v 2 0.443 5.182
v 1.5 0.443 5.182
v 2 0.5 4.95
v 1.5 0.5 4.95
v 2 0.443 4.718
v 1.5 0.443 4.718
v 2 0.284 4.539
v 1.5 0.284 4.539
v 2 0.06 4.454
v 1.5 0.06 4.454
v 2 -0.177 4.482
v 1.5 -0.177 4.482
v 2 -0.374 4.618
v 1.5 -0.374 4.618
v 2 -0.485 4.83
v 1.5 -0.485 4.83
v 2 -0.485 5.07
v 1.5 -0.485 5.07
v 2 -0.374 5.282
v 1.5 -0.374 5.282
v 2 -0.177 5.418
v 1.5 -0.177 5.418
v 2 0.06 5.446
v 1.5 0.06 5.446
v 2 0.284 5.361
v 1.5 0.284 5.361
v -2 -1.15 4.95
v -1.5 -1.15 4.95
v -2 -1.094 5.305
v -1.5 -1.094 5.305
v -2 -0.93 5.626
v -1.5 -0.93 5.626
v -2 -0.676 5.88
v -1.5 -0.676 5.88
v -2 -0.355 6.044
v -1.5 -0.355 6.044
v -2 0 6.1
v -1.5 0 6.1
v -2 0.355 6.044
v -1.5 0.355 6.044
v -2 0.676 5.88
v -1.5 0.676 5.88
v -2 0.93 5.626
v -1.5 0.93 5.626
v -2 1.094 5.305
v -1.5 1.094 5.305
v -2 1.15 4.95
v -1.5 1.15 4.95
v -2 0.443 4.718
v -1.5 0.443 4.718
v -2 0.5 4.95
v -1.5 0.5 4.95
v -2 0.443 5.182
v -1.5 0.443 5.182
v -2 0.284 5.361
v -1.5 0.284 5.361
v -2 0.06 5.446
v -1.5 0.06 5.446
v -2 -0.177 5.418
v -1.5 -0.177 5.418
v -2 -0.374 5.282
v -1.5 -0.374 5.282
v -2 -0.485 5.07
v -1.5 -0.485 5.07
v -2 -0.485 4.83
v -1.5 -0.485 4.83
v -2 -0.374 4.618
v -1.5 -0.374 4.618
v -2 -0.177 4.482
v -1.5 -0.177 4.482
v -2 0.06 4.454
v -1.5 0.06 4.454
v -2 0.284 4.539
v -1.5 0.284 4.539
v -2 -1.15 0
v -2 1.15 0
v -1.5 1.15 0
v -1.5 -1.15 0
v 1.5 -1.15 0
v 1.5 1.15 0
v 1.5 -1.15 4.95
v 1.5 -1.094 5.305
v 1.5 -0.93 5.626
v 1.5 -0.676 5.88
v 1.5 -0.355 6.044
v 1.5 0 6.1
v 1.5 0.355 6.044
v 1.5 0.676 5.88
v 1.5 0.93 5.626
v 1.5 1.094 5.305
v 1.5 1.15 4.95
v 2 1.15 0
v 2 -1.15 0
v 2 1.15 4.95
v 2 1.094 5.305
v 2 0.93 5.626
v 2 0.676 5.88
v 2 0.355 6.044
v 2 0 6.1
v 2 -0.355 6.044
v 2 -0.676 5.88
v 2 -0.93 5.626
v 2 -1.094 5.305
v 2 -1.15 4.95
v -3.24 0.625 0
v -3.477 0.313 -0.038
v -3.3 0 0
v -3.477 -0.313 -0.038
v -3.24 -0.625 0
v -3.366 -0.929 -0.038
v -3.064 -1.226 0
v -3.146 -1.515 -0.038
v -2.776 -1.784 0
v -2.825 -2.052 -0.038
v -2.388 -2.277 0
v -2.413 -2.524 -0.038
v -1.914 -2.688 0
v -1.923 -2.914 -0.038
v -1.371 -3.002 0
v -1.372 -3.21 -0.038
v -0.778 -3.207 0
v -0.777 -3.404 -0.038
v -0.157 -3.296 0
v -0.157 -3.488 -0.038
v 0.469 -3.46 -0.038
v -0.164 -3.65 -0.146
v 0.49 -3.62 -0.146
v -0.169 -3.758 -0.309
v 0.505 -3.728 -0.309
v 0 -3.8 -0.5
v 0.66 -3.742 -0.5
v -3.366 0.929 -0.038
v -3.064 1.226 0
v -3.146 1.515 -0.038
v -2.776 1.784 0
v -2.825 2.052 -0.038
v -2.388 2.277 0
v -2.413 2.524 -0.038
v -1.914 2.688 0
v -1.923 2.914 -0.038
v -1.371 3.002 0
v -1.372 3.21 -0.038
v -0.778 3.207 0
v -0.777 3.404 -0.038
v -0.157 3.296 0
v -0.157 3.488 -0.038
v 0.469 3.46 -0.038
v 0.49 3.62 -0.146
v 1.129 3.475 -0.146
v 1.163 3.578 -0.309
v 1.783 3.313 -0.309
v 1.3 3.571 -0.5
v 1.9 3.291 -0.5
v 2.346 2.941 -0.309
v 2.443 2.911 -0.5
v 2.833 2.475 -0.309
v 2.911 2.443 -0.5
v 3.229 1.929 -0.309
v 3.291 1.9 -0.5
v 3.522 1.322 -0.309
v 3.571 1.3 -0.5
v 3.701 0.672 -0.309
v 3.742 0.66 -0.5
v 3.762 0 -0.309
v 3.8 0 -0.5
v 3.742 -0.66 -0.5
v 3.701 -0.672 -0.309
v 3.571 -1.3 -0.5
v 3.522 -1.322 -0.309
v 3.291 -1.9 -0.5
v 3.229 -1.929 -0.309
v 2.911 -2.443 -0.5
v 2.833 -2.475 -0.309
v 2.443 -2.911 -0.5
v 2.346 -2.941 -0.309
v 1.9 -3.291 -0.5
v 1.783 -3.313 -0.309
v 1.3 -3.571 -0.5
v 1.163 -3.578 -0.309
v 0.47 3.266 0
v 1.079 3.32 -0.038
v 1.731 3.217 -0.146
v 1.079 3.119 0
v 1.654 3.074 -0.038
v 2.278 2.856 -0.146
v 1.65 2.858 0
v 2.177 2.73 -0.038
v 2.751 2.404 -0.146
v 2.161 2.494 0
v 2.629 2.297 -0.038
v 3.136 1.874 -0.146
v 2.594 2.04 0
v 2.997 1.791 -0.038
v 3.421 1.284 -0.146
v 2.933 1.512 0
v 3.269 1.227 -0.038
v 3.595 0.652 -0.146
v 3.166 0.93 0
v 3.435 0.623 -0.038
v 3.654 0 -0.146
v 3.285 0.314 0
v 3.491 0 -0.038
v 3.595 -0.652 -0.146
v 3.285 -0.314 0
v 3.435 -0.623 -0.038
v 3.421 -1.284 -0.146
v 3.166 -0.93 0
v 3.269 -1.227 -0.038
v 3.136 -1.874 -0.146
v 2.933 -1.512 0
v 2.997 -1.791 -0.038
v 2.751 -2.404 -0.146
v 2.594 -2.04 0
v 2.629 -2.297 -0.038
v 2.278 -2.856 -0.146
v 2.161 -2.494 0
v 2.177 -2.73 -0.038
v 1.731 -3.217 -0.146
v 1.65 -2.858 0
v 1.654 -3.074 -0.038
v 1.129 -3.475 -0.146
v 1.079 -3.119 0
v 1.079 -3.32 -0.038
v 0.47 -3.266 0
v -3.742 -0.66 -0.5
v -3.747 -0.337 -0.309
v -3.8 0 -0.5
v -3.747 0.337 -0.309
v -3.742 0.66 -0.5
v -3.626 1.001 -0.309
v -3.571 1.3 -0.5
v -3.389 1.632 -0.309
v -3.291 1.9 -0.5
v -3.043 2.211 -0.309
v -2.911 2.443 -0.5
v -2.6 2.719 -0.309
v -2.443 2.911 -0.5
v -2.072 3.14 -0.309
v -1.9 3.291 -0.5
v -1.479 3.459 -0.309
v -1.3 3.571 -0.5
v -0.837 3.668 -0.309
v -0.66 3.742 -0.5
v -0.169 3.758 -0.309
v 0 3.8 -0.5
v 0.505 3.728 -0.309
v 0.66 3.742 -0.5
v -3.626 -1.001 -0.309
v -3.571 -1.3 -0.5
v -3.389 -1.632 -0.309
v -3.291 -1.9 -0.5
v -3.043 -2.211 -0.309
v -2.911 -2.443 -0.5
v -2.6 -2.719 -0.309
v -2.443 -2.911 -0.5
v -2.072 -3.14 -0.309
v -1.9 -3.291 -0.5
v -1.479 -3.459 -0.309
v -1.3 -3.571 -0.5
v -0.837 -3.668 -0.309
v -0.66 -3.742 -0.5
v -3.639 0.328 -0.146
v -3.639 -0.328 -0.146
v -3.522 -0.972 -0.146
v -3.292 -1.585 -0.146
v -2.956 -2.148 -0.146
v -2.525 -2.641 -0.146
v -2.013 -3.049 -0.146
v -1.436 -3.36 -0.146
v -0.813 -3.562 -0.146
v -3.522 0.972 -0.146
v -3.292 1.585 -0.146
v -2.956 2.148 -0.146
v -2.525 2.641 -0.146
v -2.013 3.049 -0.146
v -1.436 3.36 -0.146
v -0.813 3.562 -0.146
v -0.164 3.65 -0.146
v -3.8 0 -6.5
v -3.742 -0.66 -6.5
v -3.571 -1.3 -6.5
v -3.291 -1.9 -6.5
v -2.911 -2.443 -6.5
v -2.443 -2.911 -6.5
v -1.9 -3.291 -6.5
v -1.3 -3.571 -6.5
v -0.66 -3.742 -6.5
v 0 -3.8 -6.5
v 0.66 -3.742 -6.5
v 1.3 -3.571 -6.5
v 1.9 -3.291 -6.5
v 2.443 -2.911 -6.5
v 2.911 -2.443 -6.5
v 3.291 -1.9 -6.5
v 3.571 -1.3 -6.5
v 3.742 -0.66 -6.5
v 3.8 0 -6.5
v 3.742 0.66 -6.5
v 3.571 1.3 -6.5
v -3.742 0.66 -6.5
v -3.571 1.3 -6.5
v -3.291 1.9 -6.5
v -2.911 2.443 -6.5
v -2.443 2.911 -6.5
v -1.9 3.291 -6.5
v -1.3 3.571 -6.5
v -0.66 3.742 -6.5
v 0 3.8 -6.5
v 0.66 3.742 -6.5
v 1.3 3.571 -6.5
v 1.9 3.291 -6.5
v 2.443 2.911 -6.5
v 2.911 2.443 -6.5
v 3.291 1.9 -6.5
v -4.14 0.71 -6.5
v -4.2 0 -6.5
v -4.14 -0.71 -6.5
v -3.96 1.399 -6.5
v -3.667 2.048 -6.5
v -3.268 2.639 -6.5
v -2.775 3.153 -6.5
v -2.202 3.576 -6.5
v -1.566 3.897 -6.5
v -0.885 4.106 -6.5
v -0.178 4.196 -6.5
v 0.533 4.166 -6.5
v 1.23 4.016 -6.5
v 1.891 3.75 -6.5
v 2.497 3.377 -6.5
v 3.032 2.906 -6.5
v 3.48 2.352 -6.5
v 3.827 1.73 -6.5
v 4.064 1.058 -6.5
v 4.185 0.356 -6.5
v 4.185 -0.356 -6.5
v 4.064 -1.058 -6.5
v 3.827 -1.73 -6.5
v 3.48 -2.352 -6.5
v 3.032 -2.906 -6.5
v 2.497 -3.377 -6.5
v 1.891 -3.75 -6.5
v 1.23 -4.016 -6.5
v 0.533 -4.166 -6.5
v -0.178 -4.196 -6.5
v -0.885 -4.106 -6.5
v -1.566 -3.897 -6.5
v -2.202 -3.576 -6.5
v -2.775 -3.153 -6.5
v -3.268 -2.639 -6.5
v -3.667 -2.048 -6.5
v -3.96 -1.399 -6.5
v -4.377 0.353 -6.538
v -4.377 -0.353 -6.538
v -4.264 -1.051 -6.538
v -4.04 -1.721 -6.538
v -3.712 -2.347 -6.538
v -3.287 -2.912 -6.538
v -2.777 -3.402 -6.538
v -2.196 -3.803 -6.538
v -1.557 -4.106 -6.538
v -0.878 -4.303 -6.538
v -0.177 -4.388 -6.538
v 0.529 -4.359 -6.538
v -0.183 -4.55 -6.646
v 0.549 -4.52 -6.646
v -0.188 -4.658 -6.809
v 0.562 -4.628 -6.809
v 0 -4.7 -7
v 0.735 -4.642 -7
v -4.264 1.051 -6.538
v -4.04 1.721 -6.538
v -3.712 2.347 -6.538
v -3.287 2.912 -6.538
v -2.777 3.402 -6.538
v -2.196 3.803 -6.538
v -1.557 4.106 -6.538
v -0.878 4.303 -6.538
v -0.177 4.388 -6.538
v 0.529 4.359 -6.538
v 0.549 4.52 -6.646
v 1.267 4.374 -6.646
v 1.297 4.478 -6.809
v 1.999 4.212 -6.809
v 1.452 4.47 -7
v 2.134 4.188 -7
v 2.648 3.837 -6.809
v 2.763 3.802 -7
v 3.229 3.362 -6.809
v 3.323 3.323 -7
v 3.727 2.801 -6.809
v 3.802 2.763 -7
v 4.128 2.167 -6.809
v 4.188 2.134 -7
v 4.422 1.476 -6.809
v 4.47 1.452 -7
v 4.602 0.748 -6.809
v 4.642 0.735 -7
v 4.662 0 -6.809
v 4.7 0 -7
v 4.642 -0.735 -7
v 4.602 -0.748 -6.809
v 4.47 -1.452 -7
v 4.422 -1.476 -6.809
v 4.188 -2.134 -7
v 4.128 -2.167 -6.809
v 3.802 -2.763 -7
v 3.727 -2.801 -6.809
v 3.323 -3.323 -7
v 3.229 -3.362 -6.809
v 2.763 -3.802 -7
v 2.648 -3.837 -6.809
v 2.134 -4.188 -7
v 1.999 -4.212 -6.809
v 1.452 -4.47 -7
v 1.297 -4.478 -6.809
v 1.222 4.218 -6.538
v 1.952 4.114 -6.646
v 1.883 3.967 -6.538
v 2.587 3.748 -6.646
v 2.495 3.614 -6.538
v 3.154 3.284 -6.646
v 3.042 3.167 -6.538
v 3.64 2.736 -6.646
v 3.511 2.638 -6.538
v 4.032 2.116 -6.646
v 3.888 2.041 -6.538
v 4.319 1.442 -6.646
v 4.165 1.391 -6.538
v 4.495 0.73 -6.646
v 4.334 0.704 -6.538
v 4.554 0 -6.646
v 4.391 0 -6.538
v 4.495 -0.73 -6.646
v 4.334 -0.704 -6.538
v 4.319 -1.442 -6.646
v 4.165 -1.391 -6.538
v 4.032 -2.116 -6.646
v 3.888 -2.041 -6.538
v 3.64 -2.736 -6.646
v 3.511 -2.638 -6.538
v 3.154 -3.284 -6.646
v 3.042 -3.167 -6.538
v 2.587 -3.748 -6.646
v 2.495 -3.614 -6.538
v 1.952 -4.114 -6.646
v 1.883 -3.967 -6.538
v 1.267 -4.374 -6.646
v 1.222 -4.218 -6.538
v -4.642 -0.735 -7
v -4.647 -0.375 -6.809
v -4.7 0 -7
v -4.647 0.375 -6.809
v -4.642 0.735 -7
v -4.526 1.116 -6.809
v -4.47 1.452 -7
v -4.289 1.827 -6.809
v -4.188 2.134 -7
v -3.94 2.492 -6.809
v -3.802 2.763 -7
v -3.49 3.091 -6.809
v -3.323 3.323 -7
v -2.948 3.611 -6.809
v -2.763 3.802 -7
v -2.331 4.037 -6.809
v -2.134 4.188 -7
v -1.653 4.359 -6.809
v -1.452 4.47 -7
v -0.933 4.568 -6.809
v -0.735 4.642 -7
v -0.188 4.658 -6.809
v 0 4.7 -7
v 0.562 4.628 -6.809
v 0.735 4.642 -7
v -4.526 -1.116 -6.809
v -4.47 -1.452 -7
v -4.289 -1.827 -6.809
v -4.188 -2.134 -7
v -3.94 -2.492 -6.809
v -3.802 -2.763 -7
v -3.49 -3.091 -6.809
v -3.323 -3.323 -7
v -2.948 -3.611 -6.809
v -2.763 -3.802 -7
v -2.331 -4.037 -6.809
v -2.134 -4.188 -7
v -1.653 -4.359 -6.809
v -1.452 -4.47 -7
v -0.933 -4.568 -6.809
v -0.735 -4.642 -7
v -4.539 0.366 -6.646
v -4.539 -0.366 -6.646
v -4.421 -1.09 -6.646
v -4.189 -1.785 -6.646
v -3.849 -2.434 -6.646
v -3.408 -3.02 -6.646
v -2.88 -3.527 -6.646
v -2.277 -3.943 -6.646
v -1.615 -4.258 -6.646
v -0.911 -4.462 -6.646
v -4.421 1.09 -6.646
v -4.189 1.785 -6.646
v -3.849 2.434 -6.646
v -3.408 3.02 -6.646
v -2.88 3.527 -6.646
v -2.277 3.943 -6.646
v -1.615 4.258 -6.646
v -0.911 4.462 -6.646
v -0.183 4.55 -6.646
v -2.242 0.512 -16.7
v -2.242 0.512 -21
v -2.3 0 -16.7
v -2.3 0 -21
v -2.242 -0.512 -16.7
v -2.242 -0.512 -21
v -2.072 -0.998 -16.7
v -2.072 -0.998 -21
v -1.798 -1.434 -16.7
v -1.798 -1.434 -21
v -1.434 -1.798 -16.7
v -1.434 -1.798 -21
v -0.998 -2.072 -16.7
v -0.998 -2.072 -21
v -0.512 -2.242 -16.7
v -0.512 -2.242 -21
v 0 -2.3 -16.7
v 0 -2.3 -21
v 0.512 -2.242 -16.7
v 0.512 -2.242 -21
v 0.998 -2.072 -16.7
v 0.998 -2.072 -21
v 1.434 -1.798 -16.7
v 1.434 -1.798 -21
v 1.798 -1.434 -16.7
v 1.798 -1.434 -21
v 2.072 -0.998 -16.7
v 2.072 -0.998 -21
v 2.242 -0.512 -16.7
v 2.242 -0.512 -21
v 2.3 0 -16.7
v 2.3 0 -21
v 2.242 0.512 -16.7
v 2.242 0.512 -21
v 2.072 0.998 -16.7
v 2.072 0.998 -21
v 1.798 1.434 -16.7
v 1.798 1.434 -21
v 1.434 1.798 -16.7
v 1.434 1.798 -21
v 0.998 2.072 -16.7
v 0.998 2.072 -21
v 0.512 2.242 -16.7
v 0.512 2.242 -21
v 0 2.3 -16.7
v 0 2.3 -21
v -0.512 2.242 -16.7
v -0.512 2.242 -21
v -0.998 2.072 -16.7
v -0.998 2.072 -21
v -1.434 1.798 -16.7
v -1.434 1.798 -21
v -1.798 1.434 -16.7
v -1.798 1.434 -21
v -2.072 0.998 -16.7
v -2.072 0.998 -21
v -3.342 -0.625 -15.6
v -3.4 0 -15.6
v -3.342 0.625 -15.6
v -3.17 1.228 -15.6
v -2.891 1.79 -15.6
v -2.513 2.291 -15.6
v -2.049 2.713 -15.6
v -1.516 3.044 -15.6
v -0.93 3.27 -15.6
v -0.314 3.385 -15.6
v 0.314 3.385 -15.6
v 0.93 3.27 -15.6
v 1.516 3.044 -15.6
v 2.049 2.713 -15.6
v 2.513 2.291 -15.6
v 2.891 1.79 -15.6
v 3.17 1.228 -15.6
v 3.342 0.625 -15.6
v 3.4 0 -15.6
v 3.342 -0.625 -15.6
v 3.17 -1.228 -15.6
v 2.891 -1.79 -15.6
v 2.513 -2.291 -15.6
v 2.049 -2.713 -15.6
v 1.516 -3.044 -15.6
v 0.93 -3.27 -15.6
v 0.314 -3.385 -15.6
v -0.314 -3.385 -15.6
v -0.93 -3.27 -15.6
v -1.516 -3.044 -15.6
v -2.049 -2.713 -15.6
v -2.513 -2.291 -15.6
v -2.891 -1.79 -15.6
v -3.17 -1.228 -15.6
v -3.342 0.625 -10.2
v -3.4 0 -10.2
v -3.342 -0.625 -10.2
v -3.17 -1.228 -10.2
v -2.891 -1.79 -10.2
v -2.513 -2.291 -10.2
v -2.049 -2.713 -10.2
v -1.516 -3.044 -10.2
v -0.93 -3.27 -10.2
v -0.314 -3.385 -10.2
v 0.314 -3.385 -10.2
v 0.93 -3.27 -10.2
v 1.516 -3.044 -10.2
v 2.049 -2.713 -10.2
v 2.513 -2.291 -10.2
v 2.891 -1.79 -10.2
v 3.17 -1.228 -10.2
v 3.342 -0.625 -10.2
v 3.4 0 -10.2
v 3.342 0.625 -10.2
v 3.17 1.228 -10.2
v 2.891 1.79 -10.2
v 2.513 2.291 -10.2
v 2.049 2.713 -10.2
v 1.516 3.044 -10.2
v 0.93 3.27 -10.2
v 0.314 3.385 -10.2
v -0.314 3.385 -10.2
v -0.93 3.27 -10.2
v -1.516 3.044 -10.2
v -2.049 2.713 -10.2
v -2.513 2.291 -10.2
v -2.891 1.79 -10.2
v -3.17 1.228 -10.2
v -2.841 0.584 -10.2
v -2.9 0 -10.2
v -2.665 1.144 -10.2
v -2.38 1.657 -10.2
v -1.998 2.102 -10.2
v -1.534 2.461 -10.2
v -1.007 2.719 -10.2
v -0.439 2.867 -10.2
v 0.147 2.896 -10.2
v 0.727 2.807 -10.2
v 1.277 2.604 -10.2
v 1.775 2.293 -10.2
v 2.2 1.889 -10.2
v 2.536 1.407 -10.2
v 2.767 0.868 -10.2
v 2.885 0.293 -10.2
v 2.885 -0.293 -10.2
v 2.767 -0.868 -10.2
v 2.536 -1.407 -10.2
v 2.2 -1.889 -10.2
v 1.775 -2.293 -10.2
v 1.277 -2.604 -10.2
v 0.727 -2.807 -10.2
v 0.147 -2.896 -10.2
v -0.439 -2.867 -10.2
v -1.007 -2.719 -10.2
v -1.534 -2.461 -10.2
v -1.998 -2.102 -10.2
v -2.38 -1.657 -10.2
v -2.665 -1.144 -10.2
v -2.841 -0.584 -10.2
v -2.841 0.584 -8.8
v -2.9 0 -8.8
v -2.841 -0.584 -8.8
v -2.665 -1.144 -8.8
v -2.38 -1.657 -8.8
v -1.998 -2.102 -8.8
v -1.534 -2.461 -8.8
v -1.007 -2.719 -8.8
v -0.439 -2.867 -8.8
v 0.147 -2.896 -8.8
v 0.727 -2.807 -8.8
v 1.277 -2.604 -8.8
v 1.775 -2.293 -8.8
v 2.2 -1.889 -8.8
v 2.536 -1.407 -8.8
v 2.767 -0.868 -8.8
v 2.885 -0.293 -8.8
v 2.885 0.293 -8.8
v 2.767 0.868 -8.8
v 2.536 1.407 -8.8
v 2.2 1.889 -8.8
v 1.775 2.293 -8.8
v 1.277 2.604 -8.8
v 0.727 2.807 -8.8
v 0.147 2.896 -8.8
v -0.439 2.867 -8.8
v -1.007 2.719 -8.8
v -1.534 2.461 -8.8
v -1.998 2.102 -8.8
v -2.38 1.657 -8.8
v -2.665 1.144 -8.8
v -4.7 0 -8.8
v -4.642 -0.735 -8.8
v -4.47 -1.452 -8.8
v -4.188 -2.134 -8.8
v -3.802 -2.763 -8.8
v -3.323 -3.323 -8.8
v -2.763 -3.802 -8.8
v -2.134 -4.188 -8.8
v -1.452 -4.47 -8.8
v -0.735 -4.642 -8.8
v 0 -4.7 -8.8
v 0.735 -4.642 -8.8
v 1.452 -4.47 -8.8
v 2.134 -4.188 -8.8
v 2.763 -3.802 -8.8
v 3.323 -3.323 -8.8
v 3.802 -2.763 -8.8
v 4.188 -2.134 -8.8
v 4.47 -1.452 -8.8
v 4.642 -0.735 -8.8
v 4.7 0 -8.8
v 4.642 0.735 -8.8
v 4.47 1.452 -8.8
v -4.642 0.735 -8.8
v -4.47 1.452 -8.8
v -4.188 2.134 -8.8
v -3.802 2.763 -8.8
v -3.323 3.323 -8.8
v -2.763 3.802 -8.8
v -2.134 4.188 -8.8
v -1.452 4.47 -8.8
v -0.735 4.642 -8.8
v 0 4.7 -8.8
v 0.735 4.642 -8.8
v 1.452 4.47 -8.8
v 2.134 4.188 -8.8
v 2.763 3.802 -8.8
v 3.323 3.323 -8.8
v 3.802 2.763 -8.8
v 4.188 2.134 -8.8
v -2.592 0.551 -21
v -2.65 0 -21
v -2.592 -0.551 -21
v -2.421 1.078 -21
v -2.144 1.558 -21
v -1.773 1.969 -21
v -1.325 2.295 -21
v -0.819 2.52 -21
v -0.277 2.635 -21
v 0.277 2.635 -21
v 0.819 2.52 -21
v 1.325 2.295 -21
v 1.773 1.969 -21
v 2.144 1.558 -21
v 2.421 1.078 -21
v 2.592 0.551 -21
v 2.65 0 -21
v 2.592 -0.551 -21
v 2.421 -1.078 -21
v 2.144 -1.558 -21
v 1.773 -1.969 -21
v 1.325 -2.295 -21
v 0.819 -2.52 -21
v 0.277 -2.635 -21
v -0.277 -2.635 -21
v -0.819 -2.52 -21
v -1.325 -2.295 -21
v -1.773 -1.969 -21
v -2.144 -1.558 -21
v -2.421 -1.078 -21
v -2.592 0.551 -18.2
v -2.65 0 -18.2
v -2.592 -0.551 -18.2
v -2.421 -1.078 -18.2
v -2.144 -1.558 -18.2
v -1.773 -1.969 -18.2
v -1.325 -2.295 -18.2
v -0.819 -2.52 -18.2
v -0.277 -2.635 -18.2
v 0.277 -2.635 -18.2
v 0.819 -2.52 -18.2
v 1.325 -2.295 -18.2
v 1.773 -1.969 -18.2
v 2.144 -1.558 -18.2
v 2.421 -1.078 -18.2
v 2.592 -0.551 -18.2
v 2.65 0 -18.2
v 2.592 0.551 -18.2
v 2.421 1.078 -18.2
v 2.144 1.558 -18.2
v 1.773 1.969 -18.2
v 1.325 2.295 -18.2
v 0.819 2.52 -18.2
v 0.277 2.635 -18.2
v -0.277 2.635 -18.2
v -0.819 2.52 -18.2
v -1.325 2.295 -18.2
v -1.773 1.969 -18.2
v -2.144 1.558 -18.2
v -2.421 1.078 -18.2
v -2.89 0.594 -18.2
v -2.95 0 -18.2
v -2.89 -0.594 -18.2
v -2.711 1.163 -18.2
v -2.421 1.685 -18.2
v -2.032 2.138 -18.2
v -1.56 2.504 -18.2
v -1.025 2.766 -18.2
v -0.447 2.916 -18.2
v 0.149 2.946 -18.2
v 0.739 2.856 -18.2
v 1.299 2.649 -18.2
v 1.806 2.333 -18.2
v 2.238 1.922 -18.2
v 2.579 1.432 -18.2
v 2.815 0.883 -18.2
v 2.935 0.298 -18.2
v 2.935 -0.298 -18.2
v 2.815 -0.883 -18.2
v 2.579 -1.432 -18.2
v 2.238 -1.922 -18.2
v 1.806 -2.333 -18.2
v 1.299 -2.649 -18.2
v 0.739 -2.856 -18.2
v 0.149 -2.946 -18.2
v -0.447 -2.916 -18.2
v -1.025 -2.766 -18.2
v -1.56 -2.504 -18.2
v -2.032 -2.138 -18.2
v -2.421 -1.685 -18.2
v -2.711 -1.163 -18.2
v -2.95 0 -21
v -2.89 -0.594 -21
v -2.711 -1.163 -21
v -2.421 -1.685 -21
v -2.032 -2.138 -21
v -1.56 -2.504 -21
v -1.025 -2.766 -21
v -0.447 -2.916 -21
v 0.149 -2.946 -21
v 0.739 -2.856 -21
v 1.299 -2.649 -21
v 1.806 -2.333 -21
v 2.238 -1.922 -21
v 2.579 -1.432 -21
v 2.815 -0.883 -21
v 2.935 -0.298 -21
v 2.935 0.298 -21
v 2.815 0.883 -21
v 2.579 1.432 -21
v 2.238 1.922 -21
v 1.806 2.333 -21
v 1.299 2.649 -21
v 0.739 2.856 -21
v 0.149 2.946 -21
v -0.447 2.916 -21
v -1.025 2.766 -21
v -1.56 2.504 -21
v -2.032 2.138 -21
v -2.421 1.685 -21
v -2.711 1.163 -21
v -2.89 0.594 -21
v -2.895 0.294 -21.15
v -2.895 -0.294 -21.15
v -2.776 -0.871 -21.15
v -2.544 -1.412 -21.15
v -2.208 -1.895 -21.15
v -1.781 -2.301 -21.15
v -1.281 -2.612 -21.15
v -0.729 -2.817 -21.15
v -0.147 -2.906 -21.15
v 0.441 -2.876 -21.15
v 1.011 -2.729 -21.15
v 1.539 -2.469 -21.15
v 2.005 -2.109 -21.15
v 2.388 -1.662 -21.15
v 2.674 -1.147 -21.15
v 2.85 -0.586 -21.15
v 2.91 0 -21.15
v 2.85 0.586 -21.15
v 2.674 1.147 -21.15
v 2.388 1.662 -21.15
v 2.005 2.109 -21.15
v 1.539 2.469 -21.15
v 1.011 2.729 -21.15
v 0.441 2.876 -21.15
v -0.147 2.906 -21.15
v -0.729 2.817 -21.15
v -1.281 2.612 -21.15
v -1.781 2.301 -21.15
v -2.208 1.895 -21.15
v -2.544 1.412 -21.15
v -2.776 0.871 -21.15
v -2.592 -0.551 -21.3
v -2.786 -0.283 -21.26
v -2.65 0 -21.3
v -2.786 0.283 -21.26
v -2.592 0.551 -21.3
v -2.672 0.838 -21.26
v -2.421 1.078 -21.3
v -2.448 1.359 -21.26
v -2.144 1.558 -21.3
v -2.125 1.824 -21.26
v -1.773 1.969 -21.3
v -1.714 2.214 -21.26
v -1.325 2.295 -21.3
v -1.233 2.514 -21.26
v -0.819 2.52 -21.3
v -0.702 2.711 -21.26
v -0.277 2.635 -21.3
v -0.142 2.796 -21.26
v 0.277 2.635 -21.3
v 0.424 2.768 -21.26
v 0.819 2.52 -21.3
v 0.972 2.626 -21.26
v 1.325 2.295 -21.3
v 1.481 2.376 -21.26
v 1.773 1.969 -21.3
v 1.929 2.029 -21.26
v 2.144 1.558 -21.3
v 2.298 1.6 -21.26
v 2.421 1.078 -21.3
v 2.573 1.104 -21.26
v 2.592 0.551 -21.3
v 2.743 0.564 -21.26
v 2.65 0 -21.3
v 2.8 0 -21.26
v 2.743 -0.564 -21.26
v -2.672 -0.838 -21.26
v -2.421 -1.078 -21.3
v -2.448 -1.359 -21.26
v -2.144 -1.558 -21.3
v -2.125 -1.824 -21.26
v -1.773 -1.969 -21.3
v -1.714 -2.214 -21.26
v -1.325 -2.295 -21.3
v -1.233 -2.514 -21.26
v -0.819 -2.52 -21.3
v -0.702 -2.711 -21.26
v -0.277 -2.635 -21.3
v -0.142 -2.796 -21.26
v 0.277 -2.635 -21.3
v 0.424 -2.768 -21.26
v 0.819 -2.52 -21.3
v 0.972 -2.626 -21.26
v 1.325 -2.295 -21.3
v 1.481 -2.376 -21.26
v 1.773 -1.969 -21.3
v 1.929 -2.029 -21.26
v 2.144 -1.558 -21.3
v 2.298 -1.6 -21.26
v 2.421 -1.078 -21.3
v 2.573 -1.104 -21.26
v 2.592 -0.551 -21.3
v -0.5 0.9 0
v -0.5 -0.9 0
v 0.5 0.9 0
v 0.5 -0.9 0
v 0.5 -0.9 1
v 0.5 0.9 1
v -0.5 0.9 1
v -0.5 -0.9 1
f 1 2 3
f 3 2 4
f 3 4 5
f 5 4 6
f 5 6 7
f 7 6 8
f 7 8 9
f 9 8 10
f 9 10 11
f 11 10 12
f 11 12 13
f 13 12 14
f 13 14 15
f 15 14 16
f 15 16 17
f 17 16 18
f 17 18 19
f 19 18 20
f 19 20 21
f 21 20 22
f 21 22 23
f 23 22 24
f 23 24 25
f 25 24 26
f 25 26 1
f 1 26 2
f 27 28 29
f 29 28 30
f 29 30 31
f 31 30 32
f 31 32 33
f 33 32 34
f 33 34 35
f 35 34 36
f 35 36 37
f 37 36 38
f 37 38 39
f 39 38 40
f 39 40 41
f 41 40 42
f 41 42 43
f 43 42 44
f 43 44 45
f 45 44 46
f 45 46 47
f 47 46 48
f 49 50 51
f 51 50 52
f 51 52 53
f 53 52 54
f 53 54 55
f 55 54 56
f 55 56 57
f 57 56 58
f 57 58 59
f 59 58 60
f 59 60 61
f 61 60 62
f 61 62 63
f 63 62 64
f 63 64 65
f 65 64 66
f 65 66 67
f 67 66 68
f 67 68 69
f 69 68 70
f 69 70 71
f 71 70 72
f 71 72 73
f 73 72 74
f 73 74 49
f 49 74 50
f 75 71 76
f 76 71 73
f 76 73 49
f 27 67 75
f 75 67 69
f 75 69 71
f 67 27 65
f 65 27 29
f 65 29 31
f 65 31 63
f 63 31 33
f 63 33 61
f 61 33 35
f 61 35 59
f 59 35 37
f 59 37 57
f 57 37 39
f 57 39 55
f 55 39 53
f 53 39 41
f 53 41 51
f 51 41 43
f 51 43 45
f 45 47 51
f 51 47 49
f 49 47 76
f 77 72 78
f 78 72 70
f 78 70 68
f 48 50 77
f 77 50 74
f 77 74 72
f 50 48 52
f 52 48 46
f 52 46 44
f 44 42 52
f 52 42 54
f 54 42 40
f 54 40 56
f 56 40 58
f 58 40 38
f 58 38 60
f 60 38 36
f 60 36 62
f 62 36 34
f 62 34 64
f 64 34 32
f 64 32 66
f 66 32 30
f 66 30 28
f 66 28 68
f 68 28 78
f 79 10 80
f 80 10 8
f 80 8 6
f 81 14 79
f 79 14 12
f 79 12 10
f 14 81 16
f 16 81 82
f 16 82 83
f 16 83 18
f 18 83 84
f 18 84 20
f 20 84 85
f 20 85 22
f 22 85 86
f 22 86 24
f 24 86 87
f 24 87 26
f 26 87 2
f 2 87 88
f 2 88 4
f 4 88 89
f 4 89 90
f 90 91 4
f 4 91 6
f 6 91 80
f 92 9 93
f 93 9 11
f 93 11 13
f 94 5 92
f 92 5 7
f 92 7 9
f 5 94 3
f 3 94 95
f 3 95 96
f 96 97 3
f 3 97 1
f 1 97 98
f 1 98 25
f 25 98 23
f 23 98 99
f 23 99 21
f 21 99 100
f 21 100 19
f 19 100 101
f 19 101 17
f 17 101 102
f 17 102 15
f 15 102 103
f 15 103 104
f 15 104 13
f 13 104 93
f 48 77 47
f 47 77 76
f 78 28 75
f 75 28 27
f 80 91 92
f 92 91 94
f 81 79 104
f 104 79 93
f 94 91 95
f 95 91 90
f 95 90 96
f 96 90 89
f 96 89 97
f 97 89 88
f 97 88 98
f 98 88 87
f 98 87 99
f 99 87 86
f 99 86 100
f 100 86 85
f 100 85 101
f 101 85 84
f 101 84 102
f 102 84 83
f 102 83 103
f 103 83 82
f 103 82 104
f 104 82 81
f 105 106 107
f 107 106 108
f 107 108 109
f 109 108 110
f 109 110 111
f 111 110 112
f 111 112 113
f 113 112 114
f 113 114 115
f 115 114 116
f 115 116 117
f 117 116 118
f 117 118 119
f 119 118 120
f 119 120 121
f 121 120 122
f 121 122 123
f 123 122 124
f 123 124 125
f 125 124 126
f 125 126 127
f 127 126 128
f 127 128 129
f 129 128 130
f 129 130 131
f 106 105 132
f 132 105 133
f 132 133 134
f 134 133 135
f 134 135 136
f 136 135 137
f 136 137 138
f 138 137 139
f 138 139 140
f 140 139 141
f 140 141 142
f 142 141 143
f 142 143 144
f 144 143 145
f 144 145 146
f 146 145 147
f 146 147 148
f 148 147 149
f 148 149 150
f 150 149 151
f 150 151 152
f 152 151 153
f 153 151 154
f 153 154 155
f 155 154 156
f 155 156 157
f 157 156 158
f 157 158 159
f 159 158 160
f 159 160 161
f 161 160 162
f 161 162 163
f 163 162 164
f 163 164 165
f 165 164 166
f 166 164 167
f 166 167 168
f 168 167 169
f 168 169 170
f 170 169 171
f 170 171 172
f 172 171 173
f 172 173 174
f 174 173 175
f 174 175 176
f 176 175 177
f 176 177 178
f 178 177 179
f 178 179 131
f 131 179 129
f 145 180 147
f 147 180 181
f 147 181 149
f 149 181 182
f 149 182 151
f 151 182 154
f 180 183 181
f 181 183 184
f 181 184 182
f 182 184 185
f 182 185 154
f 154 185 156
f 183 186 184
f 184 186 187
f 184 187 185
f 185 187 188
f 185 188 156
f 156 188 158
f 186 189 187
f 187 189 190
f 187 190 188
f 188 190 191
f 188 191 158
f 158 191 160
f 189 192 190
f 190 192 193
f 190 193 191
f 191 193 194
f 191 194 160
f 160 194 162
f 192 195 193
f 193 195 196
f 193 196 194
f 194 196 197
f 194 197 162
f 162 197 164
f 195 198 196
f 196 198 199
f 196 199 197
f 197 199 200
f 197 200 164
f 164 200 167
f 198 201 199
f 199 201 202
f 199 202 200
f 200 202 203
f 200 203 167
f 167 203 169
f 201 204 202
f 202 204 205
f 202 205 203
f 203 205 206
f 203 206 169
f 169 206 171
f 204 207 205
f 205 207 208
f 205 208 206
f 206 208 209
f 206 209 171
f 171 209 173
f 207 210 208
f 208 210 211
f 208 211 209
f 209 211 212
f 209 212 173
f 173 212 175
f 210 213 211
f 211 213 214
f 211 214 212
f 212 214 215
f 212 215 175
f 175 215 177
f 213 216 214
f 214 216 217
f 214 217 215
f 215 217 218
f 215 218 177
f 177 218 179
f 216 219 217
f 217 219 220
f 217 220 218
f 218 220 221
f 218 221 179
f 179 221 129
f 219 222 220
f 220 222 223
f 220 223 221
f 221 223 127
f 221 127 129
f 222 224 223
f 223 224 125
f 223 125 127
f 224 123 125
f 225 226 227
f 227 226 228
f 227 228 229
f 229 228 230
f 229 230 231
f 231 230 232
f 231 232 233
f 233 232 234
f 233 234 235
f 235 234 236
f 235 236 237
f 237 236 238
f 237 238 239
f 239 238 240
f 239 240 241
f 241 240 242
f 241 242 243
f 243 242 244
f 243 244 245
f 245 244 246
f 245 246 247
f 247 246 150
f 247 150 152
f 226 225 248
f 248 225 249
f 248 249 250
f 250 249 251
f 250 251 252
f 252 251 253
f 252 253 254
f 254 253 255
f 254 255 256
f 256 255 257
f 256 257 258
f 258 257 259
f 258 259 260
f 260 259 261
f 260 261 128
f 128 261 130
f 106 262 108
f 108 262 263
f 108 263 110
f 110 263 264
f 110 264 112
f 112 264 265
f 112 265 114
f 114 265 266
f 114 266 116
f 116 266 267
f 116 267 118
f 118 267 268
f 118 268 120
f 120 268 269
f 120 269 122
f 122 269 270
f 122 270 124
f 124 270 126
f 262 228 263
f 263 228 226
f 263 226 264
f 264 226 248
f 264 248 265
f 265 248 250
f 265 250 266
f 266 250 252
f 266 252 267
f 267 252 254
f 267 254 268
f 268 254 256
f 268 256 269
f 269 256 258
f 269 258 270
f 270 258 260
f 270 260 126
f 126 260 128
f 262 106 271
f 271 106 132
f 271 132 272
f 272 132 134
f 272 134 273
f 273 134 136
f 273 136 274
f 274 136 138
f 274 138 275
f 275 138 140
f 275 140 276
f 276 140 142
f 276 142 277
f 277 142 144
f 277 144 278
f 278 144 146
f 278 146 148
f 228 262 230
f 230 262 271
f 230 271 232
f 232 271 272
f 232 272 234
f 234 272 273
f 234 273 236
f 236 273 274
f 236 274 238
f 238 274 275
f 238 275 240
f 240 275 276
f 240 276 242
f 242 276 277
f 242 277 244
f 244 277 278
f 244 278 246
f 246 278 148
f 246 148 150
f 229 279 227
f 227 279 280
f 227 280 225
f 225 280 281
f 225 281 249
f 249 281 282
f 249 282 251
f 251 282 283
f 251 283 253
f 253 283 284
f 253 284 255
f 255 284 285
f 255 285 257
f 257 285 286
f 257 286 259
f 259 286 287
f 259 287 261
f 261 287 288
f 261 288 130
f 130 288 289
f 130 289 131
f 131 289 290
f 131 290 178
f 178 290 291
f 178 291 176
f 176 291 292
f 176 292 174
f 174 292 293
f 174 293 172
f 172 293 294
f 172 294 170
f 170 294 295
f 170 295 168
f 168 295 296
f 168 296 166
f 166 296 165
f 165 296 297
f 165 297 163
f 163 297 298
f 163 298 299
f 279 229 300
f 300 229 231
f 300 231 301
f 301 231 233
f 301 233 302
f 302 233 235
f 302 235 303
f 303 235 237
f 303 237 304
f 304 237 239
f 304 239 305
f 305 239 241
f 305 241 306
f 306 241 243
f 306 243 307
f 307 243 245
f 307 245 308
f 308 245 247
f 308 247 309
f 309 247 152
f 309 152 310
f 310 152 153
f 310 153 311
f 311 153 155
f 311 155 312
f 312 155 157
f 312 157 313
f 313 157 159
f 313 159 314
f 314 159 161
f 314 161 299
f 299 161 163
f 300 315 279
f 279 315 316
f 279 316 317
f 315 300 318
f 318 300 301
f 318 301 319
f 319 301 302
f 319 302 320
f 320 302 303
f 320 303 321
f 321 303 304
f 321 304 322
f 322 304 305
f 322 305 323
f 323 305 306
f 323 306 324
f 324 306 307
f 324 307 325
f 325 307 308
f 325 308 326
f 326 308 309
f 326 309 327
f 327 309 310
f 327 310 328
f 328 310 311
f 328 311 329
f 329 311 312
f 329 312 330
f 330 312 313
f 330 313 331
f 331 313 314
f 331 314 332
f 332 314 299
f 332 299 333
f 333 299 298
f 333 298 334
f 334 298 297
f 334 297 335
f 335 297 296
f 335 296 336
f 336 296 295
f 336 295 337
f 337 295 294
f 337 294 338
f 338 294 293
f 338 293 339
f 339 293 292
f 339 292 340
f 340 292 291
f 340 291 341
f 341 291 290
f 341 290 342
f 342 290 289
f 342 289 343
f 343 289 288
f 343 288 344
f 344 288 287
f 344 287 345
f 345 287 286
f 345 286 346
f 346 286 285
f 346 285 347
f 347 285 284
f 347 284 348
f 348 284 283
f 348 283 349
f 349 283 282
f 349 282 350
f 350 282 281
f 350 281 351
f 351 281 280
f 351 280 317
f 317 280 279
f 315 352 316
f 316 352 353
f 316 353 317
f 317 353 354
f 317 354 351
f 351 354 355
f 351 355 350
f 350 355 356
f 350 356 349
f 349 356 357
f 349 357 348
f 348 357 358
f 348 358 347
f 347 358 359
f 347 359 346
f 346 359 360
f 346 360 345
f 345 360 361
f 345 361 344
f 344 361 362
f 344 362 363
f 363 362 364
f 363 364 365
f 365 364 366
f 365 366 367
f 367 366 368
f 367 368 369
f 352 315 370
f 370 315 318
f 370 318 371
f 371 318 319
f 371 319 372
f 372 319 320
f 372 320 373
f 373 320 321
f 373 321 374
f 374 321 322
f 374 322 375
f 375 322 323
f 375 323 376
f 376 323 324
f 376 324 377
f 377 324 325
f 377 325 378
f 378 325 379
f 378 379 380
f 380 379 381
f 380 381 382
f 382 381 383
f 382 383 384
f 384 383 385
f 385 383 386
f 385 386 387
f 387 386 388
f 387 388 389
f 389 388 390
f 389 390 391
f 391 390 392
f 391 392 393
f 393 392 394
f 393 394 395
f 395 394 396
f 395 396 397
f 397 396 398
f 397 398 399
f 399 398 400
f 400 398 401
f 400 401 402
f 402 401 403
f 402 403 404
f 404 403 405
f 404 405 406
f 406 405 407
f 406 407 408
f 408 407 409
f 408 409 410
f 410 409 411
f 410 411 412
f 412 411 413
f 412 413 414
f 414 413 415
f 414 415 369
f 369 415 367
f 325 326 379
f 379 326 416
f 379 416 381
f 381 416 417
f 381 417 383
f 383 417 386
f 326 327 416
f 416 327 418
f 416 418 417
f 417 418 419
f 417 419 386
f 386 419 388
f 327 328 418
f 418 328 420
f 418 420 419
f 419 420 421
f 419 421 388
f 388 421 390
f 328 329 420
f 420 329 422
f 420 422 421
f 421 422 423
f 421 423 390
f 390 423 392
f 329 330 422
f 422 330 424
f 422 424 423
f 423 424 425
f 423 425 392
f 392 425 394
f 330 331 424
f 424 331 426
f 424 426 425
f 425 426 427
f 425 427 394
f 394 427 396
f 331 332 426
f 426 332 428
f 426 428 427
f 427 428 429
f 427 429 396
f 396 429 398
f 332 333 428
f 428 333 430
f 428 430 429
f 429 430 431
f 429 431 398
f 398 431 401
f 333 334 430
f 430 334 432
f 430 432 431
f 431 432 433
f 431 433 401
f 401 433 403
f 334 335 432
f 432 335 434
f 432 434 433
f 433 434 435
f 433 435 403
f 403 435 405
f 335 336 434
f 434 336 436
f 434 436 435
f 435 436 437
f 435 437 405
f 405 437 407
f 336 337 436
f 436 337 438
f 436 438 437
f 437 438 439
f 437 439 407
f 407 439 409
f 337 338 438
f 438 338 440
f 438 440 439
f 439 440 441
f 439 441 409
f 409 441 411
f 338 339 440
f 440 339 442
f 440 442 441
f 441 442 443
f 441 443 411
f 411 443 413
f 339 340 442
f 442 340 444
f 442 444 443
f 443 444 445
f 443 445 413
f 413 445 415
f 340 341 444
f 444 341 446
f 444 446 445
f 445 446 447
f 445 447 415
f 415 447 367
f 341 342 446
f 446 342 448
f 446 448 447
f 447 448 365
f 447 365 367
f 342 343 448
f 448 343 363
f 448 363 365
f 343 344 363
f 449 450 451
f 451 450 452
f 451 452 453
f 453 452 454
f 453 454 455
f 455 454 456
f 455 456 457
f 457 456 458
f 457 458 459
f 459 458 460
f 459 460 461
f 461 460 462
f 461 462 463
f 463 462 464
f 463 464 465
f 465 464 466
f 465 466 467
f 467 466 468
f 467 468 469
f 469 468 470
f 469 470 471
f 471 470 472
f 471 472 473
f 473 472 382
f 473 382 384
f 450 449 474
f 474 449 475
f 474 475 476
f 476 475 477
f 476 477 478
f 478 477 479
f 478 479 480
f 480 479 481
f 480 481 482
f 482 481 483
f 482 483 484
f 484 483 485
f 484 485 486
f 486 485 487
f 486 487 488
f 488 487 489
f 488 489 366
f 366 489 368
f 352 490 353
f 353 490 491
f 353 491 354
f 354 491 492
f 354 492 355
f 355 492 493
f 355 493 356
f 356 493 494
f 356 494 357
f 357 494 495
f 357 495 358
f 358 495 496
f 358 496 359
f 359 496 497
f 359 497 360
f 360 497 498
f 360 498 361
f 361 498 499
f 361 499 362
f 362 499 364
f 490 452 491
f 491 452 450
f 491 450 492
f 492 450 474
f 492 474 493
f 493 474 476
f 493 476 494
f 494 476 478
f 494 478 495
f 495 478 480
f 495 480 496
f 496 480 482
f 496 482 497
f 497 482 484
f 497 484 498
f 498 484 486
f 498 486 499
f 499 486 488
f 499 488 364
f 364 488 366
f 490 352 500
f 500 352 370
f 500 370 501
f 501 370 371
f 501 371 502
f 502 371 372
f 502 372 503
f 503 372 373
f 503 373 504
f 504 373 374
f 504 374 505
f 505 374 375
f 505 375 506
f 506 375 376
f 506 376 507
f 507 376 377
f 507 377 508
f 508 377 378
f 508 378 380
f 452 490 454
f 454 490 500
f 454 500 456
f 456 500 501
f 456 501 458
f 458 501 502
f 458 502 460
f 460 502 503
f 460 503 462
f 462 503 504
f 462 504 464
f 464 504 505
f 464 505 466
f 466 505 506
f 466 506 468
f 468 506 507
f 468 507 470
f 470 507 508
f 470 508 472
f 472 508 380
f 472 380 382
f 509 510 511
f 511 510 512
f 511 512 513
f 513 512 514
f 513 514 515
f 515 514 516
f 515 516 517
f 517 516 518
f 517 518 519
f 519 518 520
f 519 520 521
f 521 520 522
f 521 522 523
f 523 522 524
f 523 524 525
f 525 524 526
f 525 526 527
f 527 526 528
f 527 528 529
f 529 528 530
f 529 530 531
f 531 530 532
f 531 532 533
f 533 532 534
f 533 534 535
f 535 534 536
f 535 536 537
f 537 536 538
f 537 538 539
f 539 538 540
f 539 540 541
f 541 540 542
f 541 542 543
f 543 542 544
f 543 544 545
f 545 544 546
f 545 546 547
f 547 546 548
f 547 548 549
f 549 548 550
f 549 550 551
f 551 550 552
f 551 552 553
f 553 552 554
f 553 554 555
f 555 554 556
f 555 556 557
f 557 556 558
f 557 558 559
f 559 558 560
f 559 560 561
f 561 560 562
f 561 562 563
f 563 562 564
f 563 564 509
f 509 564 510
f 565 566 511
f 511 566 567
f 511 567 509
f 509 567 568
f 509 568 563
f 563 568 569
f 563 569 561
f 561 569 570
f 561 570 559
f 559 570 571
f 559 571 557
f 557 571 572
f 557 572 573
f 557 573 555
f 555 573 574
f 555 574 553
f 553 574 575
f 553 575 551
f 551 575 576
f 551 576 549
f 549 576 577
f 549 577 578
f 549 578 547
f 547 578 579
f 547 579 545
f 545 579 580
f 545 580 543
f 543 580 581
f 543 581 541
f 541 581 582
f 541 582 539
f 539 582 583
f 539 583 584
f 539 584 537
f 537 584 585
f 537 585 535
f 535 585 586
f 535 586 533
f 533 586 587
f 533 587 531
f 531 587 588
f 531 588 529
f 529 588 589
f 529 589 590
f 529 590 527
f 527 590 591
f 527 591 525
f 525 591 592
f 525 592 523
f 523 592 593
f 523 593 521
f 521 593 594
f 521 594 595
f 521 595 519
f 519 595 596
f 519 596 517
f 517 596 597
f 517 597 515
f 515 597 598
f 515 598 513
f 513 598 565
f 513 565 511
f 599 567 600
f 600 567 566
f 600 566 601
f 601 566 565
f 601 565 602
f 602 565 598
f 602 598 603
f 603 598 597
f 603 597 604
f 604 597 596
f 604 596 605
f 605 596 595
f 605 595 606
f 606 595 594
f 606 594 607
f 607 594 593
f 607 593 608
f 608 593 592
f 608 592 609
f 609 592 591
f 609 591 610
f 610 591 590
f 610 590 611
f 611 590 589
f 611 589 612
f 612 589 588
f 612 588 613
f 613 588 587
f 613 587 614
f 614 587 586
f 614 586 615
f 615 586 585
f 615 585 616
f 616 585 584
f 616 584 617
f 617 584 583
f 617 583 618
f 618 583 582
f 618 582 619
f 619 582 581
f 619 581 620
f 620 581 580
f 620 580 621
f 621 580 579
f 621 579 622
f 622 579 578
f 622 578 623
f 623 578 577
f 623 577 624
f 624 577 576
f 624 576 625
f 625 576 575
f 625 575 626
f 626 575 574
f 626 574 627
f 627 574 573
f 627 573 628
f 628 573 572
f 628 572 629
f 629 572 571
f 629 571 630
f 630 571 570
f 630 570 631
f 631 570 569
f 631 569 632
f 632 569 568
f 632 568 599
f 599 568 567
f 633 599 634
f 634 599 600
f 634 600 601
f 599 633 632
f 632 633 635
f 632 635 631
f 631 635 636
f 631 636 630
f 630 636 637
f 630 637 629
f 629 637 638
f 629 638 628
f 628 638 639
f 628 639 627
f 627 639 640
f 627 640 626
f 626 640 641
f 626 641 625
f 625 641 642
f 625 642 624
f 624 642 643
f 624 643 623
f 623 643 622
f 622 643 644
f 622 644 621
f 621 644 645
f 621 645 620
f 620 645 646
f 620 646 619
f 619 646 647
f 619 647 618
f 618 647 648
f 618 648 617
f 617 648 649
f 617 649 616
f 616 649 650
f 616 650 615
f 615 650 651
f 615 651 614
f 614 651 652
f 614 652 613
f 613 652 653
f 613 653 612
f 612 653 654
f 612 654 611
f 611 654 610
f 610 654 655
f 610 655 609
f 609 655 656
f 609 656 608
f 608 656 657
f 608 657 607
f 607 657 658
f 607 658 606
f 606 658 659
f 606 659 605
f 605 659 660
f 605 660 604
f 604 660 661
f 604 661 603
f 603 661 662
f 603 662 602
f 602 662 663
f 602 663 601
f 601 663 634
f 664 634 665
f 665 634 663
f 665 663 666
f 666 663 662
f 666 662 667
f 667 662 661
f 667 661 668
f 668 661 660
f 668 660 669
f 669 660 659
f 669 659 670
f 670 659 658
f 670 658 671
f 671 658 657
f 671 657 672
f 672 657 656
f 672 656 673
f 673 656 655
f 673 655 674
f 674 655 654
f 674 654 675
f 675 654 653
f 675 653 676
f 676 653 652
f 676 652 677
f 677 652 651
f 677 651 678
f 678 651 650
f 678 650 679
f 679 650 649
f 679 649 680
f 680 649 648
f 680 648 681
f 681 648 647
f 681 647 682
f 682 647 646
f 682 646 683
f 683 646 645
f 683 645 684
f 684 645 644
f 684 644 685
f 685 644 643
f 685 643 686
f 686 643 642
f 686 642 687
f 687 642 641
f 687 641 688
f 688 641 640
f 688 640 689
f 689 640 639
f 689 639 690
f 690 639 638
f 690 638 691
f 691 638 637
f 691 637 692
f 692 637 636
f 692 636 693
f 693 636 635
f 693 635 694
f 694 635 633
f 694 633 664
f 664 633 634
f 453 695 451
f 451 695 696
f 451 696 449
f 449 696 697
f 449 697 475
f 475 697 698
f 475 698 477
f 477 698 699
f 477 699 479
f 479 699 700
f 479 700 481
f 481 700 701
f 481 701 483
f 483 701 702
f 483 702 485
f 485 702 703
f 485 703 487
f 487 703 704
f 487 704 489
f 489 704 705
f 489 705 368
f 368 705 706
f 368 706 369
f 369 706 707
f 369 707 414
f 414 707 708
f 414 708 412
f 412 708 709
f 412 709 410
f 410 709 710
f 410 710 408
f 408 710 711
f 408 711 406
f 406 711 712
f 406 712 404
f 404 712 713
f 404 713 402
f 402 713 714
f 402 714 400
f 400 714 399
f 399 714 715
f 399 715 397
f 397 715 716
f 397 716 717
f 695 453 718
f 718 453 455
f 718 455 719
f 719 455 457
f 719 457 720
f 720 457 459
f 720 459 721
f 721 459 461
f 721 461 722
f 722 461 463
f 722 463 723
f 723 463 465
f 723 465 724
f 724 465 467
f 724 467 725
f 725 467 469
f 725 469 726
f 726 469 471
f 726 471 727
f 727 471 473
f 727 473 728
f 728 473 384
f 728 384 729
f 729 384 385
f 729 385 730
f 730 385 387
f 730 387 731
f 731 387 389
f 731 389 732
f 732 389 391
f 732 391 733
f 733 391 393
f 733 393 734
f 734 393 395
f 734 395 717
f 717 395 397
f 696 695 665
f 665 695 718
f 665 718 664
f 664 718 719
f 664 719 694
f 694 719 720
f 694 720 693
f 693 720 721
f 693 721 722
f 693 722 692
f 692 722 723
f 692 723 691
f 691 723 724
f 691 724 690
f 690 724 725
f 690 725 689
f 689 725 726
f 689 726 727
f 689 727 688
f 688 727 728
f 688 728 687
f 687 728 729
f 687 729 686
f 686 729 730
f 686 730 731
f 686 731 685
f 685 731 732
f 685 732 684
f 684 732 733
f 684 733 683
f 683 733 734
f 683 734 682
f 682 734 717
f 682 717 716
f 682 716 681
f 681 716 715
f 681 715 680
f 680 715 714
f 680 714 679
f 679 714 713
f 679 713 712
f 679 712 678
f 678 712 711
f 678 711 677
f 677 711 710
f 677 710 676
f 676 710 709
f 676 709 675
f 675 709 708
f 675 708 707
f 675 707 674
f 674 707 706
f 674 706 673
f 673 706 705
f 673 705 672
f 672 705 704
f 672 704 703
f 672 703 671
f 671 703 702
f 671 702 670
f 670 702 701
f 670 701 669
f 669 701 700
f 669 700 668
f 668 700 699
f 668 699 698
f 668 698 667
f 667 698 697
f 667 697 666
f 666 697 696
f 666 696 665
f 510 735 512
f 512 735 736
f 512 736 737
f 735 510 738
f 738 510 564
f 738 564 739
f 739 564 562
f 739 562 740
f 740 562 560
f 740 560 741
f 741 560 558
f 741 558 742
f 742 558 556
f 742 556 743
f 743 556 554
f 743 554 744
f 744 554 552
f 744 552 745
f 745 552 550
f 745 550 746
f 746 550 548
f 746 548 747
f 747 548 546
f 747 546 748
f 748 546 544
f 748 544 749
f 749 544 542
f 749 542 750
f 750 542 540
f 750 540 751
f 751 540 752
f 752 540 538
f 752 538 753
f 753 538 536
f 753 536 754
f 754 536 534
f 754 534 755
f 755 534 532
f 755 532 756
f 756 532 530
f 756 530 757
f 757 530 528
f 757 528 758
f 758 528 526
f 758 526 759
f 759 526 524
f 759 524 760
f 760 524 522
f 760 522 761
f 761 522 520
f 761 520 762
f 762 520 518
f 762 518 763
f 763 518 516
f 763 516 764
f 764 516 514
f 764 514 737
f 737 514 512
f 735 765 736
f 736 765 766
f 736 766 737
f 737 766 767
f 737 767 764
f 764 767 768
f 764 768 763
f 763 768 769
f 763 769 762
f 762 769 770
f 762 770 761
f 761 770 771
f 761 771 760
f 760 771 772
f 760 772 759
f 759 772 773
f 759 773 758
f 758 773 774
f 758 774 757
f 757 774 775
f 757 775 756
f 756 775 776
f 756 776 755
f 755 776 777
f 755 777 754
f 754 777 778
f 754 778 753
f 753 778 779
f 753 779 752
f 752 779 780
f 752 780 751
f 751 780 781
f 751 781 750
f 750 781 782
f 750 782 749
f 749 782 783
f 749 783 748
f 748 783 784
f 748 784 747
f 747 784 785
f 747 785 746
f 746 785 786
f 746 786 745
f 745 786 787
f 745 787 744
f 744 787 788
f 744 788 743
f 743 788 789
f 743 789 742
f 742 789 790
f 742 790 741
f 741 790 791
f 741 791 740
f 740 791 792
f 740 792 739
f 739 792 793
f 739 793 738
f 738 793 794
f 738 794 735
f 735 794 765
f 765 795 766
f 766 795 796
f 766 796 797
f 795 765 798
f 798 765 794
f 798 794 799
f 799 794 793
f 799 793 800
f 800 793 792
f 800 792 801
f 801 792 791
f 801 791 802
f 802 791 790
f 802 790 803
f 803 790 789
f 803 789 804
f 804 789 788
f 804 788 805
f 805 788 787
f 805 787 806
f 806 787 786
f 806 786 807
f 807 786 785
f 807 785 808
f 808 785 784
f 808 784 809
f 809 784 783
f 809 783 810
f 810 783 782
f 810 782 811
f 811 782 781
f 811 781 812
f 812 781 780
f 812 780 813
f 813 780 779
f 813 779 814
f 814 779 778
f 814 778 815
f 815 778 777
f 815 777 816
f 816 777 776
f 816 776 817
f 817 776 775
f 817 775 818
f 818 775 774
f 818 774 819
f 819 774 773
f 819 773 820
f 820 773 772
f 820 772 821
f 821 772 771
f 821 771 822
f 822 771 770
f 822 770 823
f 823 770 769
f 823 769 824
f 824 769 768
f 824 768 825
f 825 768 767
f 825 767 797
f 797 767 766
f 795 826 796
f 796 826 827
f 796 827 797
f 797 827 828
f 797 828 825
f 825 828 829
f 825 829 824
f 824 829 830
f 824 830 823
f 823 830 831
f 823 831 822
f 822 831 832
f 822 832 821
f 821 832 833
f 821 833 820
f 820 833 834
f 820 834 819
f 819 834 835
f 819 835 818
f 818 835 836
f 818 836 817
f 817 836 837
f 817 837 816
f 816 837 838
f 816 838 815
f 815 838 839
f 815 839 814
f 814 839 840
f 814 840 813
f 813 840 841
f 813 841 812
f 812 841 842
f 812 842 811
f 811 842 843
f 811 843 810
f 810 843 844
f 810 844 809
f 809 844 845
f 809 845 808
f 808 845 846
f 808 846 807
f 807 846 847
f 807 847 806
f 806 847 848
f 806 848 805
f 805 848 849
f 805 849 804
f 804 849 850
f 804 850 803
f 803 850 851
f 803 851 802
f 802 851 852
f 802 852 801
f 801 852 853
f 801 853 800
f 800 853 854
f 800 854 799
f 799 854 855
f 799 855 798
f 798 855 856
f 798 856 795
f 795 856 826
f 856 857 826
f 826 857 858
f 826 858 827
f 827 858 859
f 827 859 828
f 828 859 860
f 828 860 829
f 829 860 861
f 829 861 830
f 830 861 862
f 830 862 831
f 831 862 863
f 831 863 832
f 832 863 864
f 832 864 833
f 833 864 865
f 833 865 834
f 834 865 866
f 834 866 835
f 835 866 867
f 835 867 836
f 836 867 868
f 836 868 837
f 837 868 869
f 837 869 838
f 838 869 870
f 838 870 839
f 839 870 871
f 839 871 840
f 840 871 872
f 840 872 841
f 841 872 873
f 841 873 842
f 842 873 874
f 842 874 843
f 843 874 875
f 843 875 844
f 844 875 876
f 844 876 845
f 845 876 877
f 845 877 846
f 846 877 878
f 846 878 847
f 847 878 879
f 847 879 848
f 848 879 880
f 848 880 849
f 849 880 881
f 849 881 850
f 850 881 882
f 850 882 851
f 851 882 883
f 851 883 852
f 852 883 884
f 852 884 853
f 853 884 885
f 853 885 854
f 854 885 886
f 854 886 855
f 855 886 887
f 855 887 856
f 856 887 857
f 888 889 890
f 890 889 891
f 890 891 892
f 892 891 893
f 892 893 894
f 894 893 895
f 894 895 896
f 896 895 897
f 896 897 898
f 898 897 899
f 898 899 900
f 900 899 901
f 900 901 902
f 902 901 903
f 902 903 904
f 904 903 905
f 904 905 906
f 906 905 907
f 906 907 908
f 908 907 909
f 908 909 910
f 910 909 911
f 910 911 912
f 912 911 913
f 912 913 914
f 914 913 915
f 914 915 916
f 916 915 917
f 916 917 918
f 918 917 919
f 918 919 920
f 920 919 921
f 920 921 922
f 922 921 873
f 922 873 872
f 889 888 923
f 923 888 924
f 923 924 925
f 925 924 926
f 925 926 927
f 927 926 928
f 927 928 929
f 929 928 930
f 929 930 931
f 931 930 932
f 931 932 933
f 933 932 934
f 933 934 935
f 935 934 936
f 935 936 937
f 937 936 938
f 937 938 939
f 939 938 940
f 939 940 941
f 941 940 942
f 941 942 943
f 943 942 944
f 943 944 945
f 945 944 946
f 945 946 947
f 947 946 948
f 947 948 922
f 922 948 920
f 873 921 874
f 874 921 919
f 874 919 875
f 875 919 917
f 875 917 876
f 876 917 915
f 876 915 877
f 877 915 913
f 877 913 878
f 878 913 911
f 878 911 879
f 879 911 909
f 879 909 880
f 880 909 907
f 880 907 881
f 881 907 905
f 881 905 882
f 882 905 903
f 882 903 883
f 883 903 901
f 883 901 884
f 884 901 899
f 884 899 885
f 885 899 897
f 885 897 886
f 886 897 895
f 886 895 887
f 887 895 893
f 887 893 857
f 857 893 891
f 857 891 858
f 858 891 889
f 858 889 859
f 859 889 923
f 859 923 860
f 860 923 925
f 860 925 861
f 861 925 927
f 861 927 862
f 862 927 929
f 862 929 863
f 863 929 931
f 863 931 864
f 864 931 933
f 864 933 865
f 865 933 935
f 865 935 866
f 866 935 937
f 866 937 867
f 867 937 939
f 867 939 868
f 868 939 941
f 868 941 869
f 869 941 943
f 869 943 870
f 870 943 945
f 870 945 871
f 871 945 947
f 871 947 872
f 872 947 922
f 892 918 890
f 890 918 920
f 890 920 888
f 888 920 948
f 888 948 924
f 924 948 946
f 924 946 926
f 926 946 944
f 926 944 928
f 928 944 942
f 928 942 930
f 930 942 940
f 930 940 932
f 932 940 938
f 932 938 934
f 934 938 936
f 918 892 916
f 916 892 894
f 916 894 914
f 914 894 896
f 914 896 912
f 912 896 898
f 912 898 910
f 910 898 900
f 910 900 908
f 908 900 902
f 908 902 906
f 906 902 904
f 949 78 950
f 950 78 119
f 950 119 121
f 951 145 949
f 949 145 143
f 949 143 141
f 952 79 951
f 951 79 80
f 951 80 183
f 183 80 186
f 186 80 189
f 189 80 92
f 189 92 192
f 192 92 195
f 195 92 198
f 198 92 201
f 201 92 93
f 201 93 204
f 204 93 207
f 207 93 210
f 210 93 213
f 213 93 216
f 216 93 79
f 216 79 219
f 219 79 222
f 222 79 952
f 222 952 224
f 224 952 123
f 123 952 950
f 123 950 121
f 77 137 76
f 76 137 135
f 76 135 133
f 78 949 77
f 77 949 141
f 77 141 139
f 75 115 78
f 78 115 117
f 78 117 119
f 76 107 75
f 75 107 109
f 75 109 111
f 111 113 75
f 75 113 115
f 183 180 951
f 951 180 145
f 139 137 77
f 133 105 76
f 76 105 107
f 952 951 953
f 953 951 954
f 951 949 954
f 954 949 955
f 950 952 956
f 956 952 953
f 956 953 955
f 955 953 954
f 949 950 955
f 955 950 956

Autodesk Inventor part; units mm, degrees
ref_plane "XZ Plane" through (0, 0, 0) normal (0, 1, 0) x (-1, 0, 0)
ref_plane "XY Plane" through (0, 0, 0) normal (0, 0, 1) x (1, 0, 0)
sketch "Sketch1" plane through (0, 0, 0) normal (0, 1, 0) x (-1, 0, 0)
  line L0 (0, 0) -> (0, -21.3)
  line L1 (0, 0) -> (3.3, 0)
  line L2 (3.8, -0.5) -> (3.8, -6.5)
  line L3 (3.8, -6.5) -> (4.2, -6.5)
  line L4 (4.7, -7) -> (4.7, -8.8)
  line L5 (4.7, -8.8) -> (2.9, -8.8)
  line L6 (2.9, -8.8) -> (2.9, -10.2)
  line L7 (2.9, -10.2) -> (3.4, -10.2)
  line L8 (3.4, -10.2) -> (3.4, -15.6)
  line L9 (3.4, -15.6) -> (2.3, -16.7)
  line L10 (2.3, -16.7) -> (2.3, -21)
  arc A0 (3.8, -0.5) -> (3.3, 0) centre (3.3, -0.5) ccw
  arc A1 (4.7, -7) -> (4.2, -6.5) centre (4.2, -7) ccw
  line L11 (2.3, -21) -> (2.65, -21)
  line L12 (2.65, -21) -> (2.65, -18.2)
  line L13 (2.65, -18.2) -> (2.95, -18.2)
  line L14 (2.95, -18.2) -> (2.95, -21)
  line L15 (2.65, -21.3) -> (0, -21.3)
  arc A2 (2.65, -21.3) -> (2.95, -21) centre (2.65, -21) ccw
  point P0 (3.8, 0)
  point P1 (4.7, -6.5)
  point P2 (2.95, -21.3)
  dimension "d0" = 7.6
  dimension "d1" = 9.4
  dimension "d2" = 5.8
  dimension "d3" = 6.8
  dimension "d4" = 4.6
  dimension "d5" = 2.3
  dimension "d6" = 8.8
  dimension "d7" = 1.4
  dimension "d8" = 5.4
  dimension "d9" = 135
  dimension "d11" = 0.5
  dimension "d12" = 21.3
  dimension "d13" = 0.3
  dimension "d14" = 0.3
  dimension "d15" = 5.9
  dimension "d16" = 3.1
  dimension "d18" = 0.3
revolve "Revolution1" add sketch "Sketch1" angle 360 about axis through (0, 0, 0) along (0, 0, -1)
thread "Thread1" size "M7x1" class "6g" standard "ANSI Metric M Profile" full length
ref_plane "Work Plane1" through (1.5, 0, 0) normal (1, 0, 0) x (0, 1, 0)
sketch "Sketch2" plane through (1.5, 0, 0) normal (1, 0, 0) x (0, 1, 0)
  line L0 (-1.15, 4.95) -> (-1.15, 0)
  line L1 (-1.15, 0) -> (1.15, 0)
  line L2 (1.15, 0) -> (1.15, 4.95)
  arc A0 (1.15, 4.95) -> (-1.15, 4.95) centre (0, 4.95) ccw
  circle A1 centre (0, 4.95) radius 0.5
  point P0 (0, 0)
  point P1 (0, 0)
  dimension "d22" = 2.3
  dimension "d23" = 4.95
  dimension "d24" = 1
extrude "Extrusion1" add sketch "Sketch2" along normal blind 0.5
mirror "Mirror1" about plane through (0, 0, 0) normal (1, 0, 0) of "Extrusion1"
sketch "Sketch3" plane through (0, 0, 0) normal (0, 0, 1) x (1, 0, 0)
  line L0 (-0.5, 0.9) -> (0.5, 0.9)
  line L1 (0.5, 0.9) -> (0.5, -0.9)
  line L2 (0.5, -0.9) -> (-0.5, -0.9)
  line L3 (-0.5, -0.9) -> (-0.5, 0.9)
  line L4 (-0.5, -0.9) -> (0.5, 0.9) construction
  line L5 (-0.5, 0.9) -> (0.5, -0.9) construction
  point P0 (0, 0)
  point P1 (0, 0)
  dimension "d27" = 1
  dimension "d28" = 1.8
extrude "Extrusion2" add sketch "Sketch3" along normal blind 1
properties part number "BUTTON"
